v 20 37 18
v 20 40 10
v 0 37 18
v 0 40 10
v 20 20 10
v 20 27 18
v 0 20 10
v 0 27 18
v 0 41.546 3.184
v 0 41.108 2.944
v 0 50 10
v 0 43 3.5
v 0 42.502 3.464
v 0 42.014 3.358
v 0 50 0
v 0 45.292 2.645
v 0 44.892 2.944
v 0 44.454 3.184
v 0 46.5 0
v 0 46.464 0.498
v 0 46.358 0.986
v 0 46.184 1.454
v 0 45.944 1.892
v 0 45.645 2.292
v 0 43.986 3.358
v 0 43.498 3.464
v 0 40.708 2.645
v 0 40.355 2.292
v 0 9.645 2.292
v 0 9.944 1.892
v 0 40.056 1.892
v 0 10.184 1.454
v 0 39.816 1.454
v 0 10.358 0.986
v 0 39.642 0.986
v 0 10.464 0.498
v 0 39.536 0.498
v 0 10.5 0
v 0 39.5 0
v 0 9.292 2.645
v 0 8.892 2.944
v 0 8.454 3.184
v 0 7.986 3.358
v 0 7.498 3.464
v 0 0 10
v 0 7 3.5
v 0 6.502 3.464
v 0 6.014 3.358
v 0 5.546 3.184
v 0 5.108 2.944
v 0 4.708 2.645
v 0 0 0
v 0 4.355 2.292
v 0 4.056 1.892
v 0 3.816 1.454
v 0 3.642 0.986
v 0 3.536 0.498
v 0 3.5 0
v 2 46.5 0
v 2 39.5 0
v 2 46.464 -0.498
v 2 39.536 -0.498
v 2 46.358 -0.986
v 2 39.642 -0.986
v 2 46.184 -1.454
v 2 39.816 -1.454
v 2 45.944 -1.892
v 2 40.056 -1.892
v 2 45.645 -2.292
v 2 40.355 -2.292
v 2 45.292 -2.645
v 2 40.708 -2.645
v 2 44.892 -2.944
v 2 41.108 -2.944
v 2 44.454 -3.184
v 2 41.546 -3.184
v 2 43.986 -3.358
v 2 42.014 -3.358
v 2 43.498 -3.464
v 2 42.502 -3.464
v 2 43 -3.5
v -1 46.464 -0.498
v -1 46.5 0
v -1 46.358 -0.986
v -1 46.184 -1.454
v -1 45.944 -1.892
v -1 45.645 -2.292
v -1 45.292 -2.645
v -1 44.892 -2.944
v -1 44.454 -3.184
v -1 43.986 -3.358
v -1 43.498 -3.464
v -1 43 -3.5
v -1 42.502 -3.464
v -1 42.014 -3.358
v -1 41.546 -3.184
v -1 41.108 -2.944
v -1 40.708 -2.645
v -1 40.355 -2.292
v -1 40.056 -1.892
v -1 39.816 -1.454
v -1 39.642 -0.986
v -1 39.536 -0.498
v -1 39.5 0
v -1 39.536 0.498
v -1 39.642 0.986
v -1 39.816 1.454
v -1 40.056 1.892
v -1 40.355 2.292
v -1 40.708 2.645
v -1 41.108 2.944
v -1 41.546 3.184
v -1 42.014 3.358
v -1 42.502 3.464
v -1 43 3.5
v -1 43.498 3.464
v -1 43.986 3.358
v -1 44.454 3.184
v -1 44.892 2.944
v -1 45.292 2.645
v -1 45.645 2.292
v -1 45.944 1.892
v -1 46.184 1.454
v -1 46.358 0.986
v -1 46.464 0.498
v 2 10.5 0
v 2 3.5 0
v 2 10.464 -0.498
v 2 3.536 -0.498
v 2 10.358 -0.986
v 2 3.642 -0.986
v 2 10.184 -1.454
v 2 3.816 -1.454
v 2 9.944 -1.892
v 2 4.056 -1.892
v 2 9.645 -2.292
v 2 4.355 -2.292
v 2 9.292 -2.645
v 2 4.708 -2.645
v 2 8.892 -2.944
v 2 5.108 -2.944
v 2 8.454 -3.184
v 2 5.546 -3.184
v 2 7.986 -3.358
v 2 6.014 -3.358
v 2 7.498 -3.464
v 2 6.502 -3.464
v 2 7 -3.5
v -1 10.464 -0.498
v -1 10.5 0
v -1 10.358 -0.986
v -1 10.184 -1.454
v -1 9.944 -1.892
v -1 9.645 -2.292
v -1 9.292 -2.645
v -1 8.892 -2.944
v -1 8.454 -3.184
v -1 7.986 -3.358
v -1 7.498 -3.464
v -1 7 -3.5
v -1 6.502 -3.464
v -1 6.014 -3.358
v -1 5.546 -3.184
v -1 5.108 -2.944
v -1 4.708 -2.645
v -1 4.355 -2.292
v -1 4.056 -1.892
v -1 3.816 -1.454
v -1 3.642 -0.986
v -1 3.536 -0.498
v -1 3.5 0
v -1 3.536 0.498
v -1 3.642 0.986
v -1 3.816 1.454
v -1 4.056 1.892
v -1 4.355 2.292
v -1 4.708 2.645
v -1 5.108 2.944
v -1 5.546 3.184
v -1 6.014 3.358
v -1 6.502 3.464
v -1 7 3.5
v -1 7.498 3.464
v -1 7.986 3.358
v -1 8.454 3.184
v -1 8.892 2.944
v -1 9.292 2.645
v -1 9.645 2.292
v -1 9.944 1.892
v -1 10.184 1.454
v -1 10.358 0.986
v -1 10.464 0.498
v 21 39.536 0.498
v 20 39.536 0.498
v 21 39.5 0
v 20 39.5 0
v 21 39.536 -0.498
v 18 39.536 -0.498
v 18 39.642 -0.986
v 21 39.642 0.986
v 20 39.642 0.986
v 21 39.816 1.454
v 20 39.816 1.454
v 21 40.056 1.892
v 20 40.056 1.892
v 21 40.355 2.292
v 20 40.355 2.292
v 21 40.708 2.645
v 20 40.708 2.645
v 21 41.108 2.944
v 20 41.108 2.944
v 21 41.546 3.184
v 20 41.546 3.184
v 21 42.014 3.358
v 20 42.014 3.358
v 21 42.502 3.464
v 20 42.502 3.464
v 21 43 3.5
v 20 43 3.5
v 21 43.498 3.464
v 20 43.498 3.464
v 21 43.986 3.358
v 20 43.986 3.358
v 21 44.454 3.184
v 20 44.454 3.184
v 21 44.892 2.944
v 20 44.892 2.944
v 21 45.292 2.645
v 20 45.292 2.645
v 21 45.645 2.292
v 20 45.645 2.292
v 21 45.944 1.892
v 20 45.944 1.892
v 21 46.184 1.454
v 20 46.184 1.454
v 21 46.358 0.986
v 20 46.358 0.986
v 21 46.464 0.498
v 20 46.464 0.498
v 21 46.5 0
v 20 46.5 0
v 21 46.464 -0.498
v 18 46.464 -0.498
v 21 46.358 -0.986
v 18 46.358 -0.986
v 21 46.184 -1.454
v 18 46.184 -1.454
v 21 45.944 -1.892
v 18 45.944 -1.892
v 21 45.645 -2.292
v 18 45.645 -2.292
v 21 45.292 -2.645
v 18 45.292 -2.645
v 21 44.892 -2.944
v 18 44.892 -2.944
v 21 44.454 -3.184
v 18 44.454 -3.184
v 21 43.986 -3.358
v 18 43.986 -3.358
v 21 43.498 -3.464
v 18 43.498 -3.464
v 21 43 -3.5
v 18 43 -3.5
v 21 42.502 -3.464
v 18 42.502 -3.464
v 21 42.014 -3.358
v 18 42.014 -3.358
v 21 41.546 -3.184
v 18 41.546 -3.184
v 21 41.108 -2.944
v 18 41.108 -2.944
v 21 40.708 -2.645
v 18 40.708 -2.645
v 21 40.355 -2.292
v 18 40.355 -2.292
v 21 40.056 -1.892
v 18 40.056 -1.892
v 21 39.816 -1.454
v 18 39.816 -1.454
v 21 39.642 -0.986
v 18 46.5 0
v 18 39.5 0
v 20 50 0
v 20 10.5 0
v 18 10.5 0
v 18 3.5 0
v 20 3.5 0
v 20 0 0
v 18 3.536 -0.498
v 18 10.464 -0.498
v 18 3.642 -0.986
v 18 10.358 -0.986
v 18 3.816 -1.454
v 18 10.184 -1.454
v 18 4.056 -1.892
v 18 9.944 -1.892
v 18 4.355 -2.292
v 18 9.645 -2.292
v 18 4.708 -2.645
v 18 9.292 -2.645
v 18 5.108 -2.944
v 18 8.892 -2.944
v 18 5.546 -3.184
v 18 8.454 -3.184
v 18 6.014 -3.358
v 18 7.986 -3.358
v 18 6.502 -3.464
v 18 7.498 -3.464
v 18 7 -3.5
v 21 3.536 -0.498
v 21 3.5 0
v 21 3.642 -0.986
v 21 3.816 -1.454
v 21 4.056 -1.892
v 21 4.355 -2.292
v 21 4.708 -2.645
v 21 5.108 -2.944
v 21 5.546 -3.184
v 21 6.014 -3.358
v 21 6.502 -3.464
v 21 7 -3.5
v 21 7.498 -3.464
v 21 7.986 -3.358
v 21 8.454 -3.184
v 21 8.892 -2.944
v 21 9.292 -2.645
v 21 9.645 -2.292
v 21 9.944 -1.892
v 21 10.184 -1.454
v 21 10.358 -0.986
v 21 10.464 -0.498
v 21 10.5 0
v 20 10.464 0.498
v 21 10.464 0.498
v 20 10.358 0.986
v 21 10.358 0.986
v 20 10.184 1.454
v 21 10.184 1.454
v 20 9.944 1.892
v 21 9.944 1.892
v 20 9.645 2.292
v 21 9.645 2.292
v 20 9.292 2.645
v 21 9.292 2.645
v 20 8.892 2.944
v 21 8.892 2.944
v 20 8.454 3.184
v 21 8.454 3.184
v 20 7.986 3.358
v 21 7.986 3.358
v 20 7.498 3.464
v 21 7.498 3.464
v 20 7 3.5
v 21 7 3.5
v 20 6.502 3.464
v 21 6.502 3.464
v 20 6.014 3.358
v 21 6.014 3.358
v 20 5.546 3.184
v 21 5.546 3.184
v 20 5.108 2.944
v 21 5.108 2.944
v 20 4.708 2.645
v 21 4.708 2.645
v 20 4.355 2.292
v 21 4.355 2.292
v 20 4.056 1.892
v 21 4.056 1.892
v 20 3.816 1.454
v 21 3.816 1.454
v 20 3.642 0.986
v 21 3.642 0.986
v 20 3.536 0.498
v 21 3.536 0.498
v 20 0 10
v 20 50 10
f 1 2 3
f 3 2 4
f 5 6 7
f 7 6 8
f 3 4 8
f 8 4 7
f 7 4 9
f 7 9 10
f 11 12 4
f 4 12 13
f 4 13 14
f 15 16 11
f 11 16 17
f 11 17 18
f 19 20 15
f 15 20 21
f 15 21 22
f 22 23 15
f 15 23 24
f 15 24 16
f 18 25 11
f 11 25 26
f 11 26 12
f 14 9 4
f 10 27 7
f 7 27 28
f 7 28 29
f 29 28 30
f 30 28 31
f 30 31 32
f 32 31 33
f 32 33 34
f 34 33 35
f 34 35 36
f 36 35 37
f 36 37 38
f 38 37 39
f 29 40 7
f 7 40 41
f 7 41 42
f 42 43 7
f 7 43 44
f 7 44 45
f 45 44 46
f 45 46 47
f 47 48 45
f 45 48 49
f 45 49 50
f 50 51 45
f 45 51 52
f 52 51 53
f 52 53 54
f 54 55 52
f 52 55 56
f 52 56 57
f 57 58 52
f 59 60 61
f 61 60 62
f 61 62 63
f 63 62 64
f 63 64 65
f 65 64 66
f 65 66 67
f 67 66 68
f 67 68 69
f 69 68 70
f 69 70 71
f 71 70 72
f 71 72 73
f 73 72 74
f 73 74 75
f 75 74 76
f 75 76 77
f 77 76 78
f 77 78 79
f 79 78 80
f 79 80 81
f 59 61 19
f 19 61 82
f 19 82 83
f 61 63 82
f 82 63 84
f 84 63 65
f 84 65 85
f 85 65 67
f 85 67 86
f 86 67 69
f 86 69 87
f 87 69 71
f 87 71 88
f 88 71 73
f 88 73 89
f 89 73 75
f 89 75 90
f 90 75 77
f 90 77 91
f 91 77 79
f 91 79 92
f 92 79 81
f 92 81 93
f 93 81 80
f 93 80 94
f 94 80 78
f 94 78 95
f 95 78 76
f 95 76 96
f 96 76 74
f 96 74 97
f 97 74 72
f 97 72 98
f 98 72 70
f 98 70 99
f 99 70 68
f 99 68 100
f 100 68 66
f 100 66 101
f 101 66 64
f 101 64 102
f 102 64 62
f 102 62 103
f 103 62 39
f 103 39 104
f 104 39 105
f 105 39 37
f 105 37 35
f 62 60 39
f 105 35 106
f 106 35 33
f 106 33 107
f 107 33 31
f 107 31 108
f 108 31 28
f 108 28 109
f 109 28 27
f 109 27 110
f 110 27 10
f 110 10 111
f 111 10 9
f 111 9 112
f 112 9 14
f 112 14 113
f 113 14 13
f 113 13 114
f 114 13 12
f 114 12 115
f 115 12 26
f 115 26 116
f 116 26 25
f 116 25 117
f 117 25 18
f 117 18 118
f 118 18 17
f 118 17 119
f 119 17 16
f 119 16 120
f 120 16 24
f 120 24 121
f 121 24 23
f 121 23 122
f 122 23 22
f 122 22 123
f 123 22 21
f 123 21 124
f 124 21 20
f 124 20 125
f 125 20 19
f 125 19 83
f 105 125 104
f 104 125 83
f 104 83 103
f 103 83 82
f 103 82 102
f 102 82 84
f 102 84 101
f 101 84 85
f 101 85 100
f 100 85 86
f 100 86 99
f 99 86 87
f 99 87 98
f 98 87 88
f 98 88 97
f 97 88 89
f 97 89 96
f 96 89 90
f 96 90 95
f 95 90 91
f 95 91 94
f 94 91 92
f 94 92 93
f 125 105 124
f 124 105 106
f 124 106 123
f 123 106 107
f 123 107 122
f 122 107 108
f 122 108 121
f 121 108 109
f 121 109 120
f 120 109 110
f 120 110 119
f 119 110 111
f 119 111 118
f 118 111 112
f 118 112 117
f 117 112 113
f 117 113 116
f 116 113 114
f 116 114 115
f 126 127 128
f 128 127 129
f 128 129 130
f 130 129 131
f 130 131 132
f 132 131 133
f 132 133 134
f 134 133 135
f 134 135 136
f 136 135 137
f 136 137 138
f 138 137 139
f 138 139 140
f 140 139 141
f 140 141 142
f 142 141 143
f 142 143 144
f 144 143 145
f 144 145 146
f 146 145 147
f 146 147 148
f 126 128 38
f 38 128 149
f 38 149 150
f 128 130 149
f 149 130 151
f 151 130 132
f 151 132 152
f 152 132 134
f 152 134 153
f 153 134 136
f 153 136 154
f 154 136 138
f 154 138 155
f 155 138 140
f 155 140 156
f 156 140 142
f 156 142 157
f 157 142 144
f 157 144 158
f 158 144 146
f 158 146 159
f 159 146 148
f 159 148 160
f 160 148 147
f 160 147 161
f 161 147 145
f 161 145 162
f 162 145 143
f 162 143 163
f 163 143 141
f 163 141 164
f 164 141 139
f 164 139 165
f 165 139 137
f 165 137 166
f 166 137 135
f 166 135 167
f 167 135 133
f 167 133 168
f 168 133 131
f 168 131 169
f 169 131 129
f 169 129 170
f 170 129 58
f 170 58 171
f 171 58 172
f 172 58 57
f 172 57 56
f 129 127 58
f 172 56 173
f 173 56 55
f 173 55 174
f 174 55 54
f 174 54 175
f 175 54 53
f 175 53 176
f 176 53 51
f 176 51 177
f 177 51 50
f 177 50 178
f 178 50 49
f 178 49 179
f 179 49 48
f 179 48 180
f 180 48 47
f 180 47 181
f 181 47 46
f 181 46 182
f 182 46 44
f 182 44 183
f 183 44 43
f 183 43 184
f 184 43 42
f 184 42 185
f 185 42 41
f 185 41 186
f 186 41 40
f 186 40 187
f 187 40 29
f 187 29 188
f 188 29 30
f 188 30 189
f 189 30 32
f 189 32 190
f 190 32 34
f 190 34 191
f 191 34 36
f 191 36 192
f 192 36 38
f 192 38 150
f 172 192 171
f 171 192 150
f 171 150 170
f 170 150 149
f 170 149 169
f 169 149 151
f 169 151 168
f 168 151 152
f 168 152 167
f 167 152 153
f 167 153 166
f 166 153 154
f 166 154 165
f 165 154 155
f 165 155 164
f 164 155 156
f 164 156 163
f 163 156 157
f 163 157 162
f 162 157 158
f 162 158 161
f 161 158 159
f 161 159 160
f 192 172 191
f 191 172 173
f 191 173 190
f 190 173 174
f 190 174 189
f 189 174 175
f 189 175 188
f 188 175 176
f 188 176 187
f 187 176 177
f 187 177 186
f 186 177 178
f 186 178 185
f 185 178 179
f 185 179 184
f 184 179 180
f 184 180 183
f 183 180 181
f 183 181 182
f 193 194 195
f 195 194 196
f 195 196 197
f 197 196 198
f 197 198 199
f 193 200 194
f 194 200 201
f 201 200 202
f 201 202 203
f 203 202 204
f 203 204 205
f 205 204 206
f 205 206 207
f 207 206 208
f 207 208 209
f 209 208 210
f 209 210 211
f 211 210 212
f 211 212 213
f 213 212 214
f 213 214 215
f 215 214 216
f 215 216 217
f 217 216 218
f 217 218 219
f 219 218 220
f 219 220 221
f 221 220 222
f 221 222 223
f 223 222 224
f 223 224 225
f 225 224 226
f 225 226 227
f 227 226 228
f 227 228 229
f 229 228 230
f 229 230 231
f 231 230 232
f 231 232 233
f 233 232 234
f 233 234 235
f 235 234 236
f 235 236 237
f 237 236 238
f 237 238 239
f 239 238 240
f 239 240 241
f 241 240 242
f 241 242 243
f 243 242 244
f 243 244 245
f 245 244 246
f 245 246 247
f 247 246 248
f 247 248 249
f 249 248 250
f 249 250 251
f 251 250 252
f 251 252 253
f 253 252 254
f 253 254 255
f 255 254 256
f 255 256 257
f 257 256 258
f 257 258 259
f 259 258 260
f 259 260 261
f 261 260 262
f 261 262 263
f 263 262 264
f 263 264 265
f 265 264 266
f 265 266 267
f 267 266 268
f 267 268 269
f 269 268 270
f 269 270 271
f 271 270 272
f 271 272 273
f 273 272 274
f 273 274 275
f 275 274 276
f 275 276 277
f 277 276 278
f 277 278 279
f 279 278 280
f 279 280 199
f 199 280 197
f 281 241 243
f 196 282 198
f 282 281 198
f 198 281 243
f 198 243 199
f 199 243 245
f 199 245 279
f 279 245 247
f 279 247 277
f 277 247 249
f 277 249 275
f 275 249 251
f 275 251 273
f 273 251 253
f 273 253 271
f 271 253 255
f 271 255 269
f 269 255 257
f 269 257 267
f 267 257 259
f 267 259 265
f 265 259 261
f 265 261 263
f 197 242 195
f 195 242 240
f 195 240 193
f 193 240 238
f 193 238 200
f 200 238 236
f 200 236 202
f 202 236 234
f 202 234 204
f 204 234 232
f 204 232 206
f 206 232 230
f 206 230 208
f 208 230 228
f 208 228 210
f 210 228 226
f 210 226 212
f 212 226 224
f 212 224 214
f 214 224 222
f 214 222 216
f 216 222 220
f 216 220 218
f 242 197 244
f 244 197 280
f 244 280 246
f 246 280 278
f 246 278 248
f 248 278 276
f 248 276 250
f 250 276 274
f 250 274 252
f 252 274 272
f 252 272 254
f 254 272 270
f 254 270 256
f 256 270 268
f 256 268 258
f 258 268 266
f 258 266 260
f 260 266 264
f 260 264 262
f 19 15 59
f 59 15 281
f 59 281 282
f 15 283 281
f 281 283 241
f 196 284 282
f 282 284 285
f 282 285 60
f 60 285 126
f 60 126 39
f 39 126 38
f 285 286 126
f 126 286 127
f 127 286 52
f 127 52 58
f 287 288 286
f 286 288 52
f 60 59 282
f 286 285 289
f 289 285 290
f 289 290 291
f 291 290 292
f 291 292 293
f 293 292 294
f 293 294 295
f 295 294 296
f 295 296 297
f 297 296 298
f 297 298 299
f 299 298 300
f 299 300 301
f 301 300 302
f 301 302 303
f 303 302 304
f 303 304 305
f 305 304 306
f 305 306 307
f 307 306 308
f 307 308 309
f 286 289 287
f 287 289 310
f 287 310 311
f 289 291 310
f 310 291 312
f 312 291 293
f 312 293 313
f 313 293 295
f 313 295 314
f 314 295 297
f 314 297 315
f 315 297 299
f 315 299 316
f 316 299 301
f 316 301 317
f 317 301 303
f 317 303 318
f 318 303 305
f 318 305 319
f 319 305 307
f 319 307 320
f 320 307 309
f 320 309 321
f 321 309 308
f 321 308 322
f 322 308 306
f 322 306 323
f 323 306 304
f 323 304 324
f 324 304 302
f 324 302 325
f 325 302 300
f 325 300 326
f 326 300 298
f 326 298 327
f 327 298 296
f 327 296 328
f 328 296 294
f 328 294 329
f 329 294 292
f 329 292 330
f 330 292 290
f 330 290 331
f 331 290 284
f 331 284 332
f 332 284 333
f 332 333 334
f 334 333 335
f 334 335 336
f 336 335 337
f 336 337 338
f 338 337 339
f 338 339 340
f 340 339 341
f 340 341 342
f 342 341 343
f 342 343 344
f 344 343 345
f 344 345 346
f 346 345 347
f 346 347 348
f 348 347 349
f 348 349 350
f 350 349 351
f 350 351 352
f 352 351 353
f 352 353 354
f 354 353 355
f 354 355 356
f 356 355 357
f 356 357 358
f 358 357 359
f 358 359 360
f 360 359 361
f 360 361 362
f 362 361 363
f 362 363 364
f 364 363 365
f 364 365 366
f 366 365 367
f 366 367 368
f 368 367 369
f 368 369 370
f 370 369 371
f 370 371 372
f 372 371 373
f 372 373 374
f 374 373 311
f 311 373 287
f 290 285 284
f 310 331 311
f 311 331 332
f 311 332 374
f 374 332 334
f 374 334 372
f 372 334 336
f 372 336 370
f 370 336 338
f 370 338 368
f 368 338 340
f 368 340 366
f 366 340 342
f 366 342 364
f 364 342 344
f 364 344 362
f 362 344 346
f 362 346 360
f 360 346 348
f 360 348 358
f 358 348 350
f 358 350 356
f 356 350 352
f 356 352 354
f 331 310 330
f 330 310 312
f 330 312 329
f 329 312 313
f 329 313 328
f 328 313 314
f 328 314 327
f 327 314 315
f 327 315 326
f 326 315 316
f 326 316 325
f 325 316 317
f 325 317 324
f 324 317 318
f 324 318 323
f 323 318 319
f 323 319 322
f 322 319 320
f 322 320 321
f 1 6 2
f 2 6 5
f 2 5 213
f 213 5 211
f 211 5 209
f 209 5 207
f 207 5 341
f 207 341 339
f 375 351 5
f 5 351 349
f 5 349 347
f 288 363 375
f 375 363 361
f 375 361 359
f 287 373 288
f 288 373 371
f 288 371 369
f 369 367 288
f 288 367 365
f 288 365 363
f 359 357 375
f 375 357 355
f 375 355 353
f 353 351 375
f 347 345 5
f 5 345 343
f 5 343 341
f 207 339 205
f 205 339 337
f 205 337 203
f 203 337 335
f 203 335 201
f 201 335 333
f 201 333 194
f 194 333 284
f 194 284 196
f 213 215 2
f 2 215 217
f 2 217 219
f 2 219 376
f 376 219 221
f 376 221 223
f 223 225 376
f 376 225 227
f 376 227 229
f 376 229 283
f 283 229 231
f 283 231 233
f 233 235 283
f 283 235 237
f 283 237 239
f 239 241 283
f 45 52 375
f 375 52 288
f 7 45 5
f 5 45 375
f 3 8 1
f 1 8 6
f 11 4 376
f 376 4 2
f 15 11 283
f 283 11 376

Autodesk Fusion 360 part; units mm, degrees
sketch "スケッチ1" plane through (0, 0, 0) normal (1, 0, 0) x (0, 1, 0)
  line L0 (0, 0) -> (0, 10)
  line L1 (0, 10) -> (20, 10)
  line L2 (20, 10) -> (20, 18)
  line L3 (20, 18) -> (40, 18)
  line L4 (40, 18) -> (40, 10)
  line L5 (40, 10) -> (50, 10)
  line L6 (50, 10) -> (50, 0)
  line L7 (50, 0) -> (0, 0)
  dimension "d1" = 10
  dimension "d2" = 10
  dimension "d3" = 20
  dimension "d4" = 8
  dimension "d5" = 10
  dimension "d6" = 20
extrude "押し出し1" add sketch "スケッチ1" along normal blind 20
sketch "スケッチ2" plane through (20, 0, 0) normal (1, 0, 0) x (0, 1, 0)
  line L0 (50, 0) -> (50, 10)
  line L1 (50, 10) -> (40, 10)
  line L2 (40, 10) -> (40, 18)
  line L3 (40, 18) -> (20, 18)
  line L4 (20, 18) -> (20, 10)
  line L5 (20, 10) -> (0, 10)
  line L6 (0, 10) -> (0, 0)
  line L7 (0, 0) -> (50, 0)
  circle A0 centre (7, 0) radius 3.5
  circle A1 centre (43, 0) radius 3.5
  dimension "d9" = 7
  dimension "d10" = 7
  dimension "d11" = 7
  dimension "d12" = 7
extrude "押し出し2" add sketch "スケッチ2" along normal blind 1 and the other way blind 2 contours L7 A1 | L7 A1 | L7 A0 | L7 A0
ref_plane "作業平面1" through (10, 25, 9) normal (1, 0, 0) x (0, 0, -1)
mirror "ミラー1" about plane through (10, 25, 9) normal (1, 0, 0) of "押し出し2"
sketch "スケッチ3" plane through (20, 0, 0) normal (1, 0, 0) x (0, 1, 0)
  arc A0 (46.5, 0) -> (39.5, 0) centre (43, 0) ccw
  line L0 (46.5, 0) -> (50, 0)
  line L1 (50, 0) -> (50, 10)
  line L2 (50, 10) -> (40, 10)
  line L3 (40, 10) -> (40, 18)
  line L4 (40, 18) -> (20, 18)
  line L5 (20, 18) -> (20, 10)
  line L6 (20, 10) -> (0, 10)
  line L7 (0, 10) -> (0, 0)
  line L8 (0, 0) -> (3.5, 0)
  arc A1 (10.5, 0) -> (3.5, 0) centre (7, 0) ccw
  line L9 (10.5, 0) -> (39.5, 0)
  line L10 (20, 10) -> (27, 18)
  line L11 (40, 10) -> (37, 18)
  dimension "d19" = 7
  dimension "d20" = 3
extrude "押し出し3" cut sketch "スケッチ3" against normal blind 20 contours L3 L4 L11 | L4 L5 L10
